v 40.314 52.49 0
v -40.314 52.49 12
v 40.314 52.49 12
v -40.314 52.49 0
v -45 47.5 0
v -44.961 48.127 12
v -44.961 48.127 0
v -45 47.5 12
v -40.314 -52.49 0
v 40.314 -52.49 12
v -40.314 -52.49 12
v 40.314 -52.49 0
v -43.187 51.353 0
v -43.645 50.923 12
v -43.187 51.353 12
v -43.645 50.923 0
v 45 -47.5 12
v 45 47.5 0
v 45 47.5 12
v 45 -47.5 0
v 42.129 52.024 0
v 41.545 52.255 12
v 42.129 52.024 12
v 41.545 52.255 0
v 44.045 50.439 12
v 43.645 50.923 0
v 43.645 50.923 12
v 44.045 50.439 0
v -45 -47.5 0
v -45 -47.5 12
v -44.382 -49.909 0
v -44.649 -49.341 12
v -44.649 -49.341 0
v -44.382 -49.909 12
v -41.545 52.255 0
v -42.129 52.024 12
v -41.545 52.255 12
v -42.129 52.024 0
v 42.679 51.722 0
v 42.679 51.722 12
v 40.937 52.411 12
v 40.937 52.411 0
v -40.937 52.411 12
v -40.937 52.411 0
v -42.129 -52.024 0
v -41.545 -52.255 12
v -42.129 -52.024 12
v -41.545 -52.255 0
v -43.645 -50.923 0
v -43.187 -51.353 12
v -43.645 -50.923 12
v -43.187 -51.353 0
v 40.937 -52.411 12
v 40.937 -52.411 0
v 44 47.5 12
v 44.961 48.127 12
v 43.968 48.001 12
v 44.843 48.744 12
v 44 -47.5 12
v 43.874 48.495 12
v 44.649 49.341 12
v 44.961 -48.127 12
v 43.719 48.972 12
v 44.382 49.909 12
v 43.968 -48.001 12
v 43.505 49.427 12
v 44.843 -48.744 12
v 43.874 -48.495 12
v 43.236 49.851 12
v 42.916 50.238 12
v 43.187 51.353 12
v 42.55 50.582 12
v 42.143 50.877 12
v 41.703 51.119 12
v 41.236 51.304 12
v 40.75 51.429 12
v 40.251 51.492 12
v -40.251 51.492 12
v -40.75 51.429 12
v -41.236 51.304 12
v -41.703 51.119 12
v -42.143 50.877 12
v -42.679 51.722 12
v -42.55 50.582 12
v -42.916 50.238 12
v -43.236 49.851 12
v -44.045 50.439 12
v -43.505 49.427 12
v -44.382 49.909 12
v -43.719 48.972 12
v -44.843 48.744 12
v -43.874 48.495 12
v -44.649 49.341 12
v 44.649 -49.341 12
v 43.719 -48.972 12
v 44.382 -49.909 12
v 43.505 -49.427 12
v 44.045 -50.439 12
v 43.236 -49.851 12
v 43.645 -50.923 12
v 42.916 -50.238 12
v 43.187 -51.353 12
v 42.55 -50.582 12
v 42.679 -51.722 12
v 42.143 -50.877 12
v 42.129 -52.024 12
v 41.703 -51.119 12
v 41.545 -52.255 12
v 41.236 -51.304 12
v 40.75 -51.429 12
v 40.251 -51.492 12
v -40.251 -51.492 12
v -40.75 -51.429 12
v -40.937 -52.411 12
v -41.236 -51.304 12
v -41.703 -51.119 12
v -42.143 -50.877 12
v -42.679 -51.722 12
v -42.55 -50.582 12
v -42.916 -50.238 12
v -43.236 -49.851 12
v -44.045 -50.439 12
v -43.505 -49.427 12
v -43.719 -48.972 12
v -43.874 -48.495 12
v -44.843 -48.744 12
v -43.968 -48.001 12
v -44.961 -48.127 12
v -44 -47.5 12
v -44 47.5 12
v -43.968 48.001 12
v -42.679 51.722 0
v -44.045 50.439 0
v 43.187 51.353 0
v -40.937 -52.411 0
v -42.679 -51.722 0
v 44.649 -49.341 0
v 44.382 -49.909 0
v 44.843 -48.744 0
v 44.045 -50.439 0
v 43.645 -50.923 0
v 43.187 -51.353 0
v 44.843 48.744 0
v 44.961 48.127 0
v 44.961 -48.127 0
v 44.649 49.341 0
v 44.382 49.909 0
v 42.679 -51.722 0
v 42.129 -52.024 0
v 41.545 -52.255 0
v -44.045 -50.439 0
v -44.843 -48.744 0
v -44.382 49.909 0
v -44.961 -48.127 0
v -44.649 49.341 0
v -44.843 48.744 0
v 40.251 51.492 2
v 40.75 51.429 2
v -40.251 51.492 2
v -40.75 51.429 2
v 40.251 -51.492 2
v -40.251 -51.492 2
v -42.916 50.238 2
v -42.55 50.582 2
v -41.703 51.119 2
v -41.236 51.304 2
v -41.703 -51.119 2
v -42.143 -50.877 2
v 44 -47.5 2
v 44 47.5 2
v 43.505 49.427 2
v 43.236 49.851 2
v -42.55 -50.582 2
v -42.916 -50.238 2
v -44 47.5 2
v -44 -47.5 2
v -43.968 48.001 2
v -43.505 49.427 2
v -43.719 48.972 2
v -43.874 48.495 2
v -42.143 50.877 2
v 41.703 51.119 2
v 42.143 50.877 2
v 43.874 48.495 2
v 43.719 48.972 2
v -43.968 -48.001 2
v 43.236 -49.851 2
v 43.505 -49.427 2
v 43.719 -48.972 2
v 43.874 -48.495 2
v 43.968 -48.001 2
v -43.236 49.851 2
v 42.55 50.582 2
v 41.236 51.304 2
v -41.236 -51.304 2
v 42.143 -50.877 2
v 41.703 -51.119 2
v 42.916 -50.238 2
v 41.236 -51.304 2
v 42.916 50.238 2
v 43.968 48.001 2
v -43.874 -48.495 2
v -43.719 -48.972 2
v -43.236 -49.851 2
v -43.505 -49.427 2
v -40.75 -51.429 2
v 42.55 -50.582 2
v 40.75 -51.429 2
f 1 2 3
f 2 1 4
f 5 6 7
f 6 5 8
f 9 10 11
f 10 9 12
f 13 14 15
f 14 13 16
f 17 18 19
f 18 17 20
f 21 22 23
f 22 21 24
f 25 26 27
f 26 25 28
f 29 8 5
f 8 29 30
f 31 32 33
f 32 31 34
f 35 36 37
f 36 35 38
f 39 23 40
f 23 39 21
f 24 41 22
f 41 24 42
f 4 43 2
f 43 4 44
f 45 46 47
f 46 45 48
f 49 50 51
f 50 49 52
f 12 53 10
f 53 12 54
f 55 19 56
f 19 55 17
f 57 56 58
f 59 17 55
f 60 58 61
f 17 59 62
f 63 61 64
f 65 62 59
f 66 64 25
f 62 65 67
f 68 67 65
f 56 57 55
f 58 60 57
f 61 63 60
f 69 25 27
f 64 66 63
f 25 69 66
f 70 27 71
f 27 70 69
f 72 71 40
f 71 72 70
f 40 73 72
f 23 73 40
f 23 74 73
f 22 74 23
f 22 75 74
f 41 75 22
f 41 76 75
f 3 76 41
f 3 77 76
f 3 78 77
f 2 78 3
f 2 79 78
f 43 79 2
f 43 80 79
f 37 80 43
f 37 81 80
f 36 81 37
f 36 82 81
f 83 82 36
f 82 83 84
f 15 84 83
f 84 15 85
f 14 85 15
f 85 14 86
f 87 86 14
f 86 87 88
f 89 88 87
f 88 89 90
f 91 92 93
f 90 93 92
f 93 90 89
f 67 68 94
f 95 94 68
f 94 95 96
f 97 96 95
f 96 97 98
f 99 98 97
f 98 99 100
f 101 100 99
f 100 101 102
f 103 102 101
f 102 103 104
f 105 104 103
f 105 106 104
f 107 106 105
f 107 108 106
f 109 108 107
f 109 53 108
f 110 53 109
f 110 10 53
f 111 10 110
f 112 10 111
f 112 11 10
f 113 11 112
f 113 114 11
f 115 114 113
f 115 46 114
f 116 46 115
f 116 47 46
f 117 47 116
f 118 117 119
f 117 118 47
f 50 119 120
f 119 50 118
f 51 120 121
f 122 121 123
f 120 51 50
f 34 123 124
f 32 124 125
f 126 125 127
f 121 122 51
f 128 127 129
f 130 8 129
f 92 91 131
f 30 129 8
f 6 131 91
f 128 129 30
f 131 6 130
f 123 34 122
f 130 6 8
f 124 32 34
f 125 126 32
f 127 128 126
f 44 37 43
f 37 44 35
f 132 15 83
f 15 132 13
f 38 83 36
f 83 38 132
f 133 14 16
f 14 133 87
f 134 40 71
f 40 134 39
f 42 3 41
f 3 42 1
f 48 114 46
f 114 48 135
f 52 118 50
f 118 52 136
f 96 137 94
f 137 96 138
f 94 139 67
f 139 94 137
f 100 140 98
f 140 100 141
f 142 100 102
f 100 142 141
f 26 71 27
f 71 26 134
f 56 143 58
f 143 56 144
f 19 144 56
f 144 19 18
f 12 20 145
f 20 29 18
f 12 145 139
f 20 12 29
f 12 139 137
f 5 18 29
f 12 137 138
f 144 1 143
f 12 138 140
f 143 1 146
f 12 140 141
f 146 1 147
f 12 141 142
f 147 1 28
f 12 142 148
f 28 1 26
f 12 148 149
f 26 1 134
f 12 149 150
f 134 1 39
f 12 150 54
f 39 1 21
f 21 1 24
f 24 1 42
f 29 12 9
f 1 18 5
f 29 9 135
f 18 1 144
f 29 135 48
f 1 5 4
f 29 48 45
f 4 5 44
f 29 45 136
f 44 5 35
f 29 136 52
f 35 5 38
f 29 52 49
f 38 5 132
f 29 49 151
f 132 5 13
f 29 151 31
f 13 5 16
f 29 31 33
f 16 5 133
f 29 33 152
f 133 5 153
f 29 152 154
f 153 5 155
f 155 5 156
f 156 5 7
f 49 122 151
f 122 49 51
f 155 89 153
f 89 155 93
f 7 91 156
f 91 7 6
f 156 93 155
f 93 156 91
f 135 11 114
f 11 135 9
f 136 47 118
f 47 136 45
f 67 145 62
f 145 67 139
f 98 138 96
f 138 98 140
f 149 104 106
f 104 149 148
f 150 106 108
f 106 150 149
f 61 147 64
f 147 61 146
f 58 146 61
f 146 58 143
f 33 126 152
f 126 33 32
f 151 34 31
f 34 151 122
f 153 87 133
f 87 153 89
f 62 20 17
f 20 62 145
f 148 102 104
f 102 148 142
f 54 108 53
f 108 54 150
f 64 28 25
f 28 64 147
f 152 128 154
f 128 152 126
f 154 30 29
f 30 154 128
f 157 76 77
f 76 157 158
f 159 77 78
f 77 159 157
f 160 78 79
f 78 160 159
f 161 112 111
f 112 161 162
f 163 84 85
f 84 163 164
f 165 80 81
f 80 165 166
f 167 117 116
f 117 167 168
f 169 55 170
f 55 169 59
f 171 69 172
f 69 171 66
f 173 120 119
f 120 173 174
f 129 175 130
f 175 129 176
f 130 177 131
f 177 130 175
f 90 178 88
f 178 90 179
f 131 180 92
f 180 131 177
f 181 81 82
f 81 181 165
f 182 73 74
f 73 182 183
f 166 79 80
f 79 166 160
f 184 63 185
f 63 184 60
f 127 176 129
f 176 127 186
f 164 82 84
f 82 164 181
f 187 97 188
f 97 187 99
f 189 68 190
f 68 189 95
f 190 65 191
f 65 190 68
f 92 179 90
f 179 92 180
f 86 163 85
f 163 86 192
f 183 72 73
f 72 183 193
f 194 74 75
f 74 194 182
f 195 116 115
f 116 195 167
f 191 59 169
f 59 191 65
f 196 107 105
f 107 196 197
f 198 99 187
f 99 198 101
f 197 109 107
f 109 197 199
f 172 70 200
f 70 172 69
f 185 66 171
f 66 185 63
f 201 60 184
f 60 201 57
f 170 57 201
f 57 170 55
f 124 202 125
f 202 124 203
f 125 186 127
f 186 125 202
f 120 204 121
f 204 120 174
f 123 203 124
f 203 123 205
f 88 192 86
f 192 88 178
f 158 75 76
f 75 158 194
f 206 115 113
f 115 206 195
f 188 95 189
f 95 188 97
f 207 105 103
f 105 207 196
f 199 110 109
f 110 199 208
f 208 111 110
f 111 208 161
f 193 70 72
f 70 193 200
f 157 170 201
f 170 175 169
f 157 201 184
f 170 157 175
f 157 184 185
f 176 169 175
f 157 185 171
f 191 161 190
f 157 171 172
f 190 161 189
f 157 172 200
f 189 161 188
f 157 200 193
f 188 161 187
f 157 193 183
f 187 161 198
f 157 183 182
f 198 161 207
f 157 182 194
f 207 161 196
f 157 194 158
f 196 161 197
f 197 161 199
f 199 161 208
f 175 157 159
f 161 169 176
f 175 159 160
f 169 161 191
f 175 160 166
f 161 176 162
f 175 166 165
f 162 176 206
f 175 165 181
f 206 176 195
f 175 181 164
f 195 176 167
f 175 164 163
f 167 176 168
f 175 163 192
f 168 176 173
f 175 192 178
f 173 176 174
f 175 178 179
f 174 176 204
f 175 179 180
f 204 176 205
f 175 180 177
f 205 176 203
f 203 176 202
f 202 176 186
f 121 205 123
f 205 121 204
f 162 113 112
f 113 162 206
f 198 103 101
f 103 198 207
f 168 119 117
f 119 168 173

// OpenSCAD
$fn = 50;


difference() {
	union() {
		hull() {
			translate(v = [-40.0000000000, 47.5000000000, 0]) {
				cylinder(h = 12, r = 5);
			}
			translate(v = [40.0000000000, 47.5000000000, 0]) {
				cylinder(h = 12, r = 5);
			}
			translate(v = [-40.0000000000, -47.5000000000, 0]) {
				cylinder(h = 12, r = 5);
			}
			translate(v = [40.0000000000, -47.5000000000, 0]) {
				cylinder(h = 12, r = 5);
			}
		}
	}
	union() {
		translate(v = [0, 0, 2]) {
			hull() {
				translate(v = [-40.0000000000, 47.5000000000, 0]) {
					cylinder(h = 10, r = 4);
				}
				translate(v = [40.0000000000, 47.5000000000, 0]) {
					cylinder(h = 10, r = 4);
				}
				translate(v = [-40.0000000000, -47.5000000000, 0]) {
					cylinder(h = 10, r = 4);
				}
				translate(v = [40.0000000000, -47.5000000000, 0]) {
					cylinder(h = 10, r = 4);
				}
			}
		}
	}
}
